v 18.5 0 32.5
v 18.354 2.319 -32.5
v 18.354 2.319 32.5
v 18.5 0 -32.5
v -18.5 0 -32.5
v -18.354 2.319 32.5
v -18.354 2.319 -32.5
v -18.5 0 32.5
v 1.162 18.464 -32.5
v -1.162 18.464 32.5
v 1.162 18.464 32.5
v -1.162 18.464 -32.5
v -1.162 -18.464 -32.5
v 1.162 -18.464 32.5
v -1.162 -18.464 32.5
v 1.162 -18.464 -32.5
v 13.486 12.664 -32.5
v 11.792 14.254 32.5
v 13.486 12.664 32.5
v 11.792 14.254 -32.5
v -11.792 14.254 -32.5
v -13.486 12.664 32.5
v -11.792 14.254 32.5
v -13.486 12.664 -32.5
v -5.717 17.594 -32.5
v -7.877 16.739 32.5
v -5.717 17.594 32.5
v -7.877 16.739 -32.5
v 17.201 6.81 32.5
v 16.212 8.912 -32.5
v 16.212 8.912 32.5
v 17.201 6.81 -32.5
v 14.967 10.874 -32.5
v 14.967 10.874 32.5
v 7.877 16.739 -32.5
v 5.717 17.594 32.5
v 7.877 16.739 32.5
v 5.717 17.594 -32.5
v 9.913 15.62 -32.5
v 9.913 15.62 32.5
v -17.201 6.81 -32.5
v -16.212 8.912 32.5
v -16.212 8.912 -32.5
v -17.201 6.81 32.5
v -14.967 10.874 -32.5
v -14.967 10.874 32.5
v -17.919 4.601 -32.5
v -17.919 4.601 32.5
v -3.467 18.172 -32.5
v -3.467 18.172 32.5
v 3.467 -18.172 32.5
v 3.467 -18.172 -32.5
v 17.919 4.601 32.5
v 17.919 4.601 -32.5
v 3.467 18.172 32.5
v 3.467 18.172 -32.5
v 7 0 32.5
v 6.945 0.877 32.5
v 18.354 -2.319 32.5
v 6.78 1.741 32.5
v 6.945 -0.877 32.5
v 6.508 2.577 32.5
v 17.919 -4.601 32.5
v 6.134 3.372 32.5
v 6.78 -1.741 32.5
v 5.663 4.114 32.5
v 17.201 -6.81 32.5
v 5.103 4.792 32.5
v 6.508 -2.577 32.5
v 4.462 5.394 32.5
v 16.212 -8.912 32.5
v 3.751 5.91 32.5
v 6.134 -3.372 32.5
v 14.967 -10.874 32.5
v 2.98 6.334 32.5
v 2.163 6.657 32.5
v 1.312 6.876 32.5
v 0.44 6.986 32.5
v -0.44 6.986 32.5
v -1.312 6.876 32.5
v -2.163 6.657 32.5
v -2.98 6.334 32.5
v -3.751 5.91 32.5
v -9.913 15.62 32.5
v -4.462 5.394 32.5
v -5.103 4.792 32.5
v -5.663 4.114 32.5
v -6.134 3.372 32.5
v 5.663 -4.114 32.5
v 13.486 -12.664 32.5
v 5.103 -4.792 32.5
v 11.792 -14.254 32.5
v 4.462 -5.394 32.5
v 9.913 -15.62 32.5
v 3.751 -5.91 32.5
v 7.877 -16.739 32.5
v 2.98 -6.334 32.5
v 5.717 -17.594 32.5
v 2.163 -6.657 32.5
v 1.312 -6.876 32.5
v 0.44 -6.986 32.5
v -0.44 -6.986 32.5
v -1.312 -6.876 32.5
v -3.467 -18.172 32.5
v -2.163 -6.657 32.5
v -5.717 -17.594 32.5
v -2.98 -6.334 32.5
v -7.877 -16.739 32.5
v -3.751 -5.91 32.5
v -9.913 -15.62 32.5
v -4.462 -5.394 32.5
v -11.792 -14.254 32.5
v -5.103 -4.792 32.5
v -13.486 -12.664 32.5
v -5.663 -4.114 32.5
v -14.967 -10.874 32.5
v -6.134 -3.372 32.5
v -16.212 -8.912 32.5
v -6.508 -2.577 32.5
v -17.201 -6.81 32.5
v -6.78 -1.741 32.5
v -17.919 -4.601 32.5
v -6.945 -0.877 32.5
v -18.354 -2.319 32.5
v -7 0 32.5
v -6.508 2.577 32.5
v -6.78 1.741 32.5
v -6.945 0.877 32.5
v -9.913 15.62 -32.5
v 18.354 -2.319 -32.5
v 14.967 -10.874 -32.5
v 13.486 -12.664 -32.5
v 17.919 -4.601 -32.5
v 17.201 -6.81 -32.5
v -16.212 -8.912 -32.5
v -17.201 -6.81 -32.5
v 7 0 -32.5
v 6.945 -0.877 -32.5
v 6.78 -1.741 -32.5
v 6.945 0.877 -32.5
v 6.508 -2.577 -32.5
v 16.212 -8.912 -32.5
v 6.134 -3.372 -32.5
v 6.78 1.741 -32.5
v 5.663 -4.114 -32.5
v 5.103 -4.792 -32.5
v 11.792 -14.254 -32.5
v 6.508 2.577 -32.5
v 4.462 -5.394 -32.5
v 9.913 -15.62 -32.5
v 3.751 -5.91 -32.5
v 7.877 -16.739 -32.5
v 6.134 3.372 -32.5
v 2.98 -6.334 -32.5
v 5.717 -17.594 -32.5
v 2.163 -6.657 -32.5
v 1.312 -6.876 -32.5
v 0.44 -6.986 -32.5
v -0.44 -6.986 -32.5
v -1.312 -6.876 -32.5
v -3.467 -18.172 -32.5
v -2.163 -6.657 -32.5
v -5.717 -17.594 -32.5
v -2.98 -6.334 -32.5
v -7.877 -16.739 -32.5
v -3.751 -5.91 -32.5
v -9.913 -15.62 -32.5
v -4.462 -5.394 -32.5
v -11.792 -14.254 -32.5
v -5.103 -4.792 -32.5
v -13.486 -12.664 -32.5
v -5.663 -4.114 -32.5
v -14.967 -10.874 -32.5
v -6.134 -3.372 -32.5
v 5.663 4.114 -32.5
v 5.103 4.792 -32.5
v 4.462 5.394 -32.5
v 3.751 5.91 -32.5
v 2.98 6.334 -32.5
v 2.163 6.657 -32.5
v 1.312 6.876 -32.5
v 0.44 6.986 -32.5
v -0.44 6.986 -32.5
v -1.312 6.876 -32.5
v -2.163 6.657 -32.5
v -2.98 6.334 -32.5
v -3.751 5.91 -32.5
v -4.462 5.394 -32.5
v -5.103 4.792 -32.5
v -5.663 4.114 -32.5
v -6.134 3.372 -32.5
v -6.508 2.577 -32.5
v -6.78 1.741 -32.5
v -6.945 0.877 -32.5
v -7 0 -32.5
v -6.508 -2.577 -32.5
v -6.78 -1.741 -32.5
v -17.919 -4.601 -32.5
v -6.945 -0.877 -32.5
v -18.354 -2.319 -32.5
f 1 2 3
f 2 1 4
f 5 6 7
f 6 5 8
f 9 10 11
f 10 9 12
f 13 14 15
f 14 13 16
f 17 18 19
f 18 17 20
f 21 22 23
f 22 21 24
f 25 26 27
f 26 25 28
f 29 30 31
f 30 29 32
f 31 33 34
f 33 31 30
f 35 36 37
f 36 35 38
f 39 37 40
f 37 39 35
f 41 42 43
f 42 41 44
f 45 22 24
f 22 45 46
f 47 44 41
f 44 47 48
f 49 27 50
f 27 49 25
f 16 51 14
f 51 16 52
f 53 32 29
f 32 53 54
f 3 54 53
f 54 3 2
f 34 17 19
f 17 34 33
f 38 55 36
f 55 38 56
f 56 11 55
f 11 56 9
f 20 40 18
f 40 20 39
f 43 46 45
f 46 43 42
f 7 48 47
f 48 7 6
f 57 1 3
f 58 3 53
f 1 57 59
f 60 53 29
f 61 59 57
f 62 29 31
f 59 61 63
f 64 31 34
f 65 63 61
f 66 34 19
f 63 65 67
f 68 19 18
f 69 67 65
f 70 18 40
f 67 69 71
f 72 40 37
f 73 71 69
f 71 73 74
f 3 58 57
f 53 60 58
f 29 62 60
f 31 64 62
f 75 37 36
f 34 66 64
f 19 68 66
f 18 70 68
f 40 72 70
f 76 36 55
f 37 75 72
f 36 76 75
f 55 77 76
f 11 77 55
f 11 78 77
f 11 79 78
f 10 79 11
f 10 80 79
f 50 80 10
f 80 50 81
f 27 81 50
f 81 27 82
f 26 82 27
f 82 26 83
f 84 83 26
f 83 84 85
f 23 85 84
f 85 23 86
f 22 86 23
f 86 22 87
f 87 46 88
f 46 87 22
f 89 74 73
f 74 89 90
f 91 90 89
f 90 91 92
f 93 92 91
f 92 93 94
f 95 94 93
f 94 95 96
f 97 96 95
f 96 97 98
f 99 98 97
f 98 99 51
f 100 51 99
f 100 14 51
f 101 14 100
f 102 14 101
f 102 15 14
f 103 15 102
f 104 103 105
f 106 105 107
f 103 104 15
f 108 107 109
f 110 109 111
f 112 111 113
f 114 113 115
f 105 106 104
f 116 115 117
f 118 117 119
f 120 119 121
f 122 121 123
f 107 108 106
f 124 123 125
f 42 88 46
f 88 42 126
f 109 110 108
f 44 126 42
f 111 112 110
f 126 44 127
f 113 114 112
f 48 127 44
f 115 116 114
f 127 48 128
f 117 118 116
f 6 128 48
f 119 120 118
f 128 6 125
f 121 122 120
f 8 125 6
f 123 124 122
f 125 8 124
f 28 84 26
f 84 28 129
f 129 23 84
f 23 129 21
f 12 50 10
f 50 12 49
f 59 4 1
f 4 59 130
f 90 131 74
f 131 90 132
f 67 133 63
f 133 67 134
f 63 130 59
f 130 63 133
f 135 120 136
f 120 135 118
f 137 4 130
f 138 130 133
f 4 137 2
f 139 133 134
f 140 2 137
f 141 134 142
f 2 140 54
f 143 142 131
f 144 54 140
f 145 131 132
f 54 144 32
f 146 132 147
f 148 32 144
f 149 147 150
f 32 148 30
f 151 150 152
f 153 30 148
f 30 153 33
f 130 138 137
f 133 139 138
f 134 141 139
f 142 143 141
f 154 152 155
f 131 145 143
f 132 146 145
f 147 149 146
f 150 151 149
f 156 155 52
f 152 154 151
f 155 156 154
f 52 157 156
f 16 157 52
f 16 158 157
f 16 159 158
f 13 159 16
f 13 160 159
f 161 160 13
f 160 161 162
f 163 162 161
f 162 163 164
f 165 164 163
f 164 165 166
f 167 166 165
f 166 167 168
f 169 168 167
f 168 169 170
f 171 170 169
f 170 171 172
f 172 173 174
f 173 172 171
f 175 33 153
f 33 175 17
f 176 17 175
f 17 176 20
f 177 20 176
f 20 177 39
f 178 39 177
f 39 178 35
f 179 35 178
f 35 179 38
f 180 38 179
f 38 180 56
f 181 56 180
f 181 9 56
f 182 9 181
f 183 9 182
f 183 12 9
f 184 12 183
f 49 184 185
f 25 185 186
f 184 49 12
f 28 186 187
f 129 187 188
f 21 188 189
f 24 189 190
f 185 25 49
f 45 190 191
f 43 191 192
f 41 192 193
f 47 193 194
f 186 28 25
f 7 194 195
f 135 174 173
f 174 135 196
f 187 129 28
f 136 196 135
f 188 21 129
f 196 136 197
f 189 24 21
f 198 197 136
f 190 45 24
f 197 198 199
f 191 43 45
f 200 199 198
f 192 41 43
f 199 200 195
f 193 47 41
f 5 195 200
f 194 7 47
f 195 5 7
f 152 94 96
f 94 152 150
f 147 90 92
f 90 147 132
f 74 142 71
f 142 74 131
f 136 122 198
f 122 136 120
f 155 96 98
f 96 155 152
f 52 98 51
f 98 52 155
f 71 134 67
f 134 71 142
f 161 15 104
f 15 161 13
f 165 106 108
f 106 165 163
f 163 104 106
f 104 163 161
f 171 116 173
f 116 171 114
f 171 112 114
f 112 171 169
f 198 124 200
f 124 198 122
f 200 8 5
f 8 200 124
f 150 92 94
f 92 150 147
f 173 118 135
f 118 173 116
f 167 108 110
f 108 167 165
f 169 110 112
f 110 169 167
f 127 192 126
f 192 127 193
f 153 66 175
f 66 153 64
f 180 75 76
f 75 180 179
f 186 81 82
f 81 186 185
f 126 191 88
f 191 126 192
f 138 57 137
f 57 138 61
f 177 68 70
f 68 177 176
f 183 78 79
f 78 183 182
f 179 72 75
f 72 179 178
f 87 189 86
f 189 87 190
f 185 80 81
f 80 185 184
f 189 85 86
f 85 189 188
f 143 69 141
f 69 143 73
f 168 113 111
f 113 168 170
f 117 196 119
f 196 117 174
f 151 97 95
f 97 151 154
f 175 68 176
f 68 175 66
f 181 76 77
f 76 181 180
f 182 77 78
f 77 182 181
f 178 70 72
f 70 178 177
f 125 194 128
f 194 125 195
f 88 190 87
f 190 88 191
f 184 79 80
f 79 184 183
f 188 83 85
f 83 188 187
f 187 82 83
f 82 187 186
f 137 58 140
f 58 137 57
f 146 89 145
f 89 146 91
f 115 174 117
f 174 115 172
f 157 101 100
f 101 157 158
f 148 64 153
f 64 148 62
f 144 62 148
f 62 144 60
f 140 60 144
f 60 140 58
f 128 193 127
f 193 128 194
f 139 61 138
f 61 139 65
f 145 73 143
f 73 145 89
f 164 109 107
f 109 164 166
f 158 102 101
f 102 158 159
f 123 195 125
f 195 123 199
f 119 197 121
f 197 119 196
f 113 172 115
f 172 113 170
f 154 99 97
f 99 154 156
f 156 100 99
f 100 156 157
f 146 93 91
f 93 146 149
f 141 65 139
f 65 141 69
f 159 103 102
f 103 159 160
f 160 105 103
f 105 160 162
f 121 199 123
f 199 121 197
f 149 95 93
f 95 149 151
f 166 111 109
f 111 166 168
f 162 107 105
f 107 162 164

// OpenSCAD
$fn = 50;


difference() {
	union() {
		translate(v = [0, 0, -32.5000000000]) {
			cylinder(h = 65, r = 18.5000000000);
		}
	}
	union() {
		translate(v = [0, 0, -100.0000000000]) {
			cylinder(h = 200, r = 7);
		}
	}
}
